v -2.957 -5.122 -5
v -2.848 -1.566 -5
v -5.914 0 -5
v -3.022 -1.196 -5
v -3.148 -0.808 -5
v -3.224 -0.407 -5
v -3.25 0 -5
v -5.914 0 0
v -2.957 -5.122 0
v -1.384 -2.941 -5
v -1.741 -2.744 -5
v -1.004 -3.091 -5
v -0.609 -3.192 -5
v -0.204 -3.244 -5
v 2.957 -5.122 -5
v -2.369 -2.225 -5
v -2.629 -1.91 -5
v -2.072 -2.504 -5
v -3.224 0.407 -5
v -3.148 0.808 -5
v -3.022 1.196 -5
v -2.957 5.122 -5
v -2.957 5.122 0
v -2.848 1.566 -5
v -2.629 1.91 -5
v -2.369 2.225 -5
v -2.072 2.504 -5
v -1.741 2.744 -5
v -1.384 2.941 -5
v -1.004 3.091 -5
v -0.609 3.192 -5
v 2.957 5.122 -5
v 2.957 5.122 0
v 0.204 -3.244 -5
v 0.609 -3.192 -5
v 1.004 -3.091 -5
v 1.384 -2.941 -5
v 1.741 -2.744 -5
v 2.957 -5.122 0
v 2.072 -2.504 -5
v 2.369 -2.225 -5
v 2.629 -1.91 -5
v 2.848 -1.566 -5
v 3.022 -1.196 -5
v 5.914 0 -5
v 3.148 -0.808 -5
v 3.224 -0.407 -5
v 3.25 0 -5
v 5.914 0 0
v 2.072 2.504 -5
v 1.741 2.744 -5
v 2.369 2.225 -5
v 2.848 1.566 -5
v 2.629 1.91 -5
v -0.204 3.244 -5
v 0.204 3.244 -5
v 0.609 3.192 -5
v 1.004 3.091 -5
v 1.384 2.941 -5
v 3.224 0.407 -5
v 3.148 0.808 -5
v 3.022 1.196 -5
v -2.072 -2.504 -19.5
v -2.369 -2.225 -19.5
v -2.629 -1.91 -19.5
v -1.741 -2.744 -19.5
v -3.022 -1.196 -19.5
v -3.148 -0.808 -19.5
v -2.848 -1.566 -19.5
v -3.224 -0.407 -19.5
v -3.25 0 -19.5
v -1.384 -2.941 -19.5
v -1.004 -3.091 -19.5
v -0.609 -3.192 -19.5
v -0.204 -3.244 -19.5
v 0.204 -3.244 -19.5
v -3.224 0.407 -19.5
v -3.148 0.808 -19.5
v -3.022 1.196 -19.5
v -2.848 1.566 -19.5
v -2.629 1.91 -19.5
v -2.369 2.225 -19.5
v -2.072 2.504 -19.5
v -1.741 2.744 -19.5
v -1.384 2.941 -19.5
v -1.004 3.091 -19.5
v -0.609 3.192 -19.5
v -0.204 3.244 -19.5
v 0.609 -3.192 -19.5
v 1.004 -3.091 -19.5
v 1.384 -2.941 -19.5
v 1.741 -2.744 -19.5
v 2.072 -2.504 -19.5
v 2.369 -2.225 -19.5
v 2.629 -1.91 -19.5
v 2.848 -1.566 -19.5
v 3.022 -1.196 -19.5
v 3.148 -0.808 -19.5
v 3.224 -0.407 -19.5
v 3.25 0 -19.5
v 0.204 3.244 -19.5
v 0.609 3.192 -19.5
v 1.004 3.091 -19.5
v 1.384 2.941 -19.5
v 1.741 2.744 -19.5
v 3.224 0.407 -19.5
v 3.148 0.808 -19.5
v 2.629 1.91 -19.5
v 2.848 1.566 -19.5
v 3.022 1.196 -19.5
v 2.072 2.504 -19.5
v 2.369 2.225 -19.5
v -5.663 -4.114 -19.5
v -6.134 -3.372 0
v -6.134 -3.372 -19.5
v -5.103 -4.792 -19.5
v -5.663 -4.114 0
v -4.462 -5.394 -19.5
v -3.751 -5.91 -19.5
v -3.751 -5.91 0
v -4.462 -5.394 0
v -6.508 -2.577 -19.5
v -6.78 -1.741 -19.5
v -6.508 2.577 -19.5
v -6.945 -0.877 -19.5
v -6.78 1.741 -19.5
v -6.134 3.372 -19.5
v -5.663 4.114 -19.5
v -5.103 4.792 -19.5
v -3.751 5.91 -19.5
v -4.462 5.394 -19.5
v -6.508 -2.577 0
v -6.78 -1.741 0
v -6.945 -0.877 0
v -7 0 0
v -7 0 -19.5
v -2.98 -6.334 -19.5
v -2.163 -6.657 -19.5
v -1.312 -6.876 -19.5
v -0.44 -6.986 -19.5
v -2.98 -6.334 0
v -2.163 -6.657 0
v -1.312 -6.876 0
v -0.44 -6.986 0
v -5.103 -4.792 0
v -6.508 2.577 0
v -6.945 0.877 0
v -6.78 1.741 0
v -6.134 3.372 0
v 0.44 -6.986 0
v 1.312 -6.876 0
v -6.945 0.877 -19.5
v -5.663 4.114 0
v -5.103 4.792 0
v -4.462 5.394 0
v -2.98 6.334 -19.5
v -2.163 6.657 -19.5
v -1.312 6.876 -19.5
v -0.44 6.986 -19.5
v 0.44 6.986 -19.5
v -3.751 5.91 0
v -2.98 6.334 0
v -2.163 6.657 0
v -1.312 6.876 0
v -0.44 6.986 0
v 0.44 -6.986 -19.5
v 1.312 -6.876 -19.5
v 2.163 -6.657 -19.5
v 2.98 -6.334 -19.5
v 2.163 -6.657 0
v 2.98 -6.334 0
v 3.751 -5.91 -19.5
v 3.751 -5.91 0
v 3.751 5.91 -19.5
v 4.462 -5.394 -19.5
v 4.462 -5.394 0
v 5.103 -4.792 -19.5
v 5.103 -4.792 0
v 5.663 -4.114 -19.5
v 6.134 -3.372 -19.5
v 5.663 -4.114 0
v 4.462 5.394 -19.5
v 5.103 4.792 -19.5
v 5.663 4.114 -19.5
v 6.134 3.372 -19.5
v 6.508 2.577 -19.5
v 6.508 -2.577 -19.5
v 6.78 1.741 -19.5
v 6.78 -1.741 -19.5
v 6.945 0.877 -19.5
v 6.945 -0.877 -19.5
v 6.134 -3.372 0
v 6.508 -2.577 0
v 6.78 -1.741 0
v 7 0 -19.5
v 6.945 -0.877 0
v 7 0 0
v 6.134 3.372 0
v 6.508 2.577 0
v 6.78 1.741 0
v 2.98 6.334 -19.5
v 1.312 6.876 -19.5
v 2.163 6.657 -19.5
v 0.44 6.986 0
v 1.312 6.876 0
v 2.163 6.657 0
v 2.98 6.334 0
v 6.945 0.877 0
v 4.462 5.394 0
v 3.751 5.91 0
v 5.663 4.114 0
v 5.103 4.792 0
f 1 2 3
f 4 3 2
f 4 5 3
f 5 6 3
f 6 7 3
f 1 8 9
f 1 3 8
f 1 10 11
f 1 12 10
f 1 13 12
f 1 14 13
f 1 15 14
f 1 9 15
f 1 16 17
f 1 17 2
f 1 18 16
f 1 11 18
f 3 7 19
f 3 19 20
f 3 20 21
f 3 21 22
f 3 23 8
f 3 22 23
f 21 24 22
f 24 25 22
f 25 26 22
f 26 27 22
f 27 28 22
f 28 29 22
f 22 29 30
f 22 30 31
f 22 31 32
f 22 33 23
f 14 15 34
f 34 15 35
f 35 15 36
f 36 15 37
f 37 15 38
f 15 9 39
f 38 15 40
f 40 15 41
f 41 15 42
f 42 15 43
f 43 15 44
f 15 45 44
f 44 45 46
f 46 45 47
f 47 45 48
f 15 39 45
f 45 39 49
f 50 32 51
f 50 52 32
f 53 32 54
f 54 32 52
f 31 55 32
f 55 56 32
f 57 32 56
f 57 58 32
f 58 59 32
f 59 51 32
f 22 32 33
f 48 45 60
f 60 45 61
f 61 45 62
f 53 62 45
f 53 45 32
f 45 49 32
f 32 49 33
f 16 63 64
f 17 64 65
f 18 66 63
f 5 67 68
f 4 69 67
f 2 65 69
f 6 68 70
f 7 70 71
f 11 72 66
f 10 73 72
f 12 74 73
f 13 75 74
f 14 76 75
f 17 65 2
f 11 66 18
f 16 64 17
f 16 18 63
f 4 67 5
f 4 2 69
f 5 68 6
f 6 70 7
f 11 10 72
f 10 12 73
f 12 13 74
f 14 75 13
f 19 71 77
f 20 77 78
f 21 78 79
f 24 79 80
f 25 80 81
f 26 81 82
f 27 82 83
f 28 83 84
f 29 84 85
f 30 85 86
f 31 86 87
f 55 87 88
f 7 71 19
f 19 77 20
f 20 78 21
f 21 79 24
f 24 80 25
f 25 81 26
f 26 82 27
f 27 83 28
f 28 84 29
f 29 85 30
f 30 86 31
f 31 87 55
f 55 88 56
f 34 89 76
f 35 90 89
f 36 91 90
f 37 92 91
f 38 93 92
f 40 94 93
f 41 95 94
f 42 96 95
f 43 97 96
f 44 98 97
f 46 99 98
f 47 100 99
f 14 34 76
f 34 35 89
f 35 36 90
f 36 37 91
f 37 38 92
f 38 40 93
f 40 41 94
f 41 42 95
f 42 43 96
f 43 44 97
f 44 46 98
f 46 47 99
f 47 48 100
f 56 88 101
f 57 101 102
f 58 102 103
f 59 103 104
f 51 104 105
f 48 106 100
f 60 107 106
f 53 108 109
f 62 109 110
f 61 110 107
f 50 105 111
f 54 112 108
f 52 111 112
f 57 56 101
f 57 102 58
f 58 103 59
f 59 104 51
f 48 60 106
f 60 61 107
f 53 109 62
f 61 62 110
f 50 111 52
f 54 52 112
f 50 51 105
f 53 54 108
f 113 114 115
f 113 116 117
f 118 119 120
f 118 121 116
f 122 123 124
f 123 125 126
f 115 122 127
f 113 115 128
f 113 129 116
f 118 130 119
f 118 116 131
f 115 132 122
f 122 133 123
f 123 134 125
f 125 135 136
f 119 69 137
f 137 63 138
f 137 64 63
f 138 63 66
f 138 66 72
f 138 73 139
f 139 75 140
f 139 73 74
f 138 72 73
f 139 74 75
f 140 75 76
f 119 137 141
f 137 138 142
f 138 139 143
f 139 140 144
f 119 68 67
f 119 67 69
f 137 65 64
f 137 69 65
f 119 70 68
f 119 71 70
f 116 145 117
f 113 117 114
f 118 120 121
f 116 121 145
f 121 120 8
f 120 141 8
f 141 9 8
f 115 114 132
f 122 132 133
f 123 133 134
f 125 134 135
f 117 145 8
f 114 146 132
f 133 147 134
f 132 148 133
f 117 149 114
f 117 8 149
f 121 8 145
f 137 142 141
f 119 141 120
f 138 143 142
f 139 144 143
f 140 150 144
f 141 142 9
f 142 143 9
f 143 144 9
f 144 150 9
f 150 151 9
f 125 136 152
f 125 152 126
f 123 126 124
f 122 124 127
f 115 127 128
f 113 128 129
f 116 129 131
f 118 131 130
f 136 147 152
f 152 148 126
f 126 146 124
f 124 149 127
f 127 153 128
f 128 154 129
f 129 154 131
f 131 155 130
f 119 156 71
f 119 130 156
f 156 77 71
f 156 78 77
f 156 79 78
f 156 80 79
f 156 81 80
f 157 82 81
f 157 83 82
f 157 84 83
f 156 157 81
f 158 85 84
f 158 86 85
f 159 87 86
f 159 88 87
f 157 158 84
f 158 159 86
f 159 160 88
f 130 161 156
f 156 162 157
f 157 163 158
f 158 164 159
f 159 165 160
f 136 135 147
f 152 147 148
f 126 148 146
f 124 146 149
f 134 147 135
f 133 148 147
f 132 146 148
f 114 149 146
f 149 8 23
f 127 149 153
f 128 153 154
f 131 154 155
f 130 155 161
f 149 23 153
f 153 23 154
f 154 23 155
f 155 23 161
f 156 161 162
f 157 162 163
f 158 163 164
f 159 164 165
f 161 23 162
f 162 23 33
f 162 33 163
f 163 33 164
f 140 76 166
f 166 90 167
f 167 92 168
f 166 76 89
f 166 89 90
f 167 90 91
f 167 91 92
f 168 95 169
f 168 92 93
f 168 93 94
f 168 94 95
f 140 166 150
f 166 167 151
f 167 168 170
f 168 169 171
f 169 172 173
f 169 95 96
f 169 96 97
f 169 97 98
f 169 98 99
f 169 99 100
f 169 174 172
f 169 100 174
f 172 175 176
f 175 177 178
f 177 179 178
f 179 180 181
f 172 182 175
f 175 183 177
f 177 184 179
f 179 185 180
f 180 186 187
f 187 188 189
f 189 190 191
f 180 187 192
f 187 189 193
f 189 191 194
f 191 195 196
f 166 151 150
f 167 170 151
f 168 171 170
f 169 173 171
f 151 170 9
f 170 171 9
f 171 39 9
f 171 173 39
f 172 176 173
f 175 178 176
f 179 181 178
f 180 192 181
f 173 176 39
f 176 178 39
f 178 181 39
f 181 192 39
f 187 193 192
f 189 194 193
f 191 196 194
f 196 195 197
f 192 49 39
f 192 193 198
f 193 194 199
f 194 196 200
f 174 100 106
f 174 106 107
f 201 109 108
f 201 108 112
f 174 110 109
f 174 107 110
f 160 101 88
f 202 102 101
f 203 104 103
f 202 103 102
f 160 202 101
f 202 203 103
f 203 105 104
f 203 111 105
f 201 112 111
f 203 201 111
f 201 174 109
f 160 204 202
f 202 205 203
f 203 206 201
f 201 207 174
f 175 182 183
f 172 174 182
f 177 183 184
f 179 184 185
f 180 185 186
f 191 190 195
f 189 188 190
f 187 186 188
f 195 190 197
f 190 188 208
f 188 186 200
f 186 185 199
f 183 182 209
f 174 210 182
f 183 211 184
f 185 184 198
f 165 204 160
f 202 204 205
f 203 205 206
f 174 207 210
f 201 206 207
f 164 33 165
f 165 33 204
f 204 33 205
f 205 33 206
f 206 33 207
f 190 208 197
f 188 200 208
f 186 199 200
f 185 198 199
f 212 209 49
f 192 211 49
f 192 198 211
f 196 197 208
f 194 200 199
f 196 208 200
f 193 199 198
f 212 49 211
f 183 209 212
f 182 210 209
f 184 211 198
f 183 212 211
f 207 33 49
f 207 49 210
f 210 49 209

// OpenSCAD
$fn = 50;


difference() {
	union() {
		translate(v = [0, 0, -19.5000000000]) {
			cylinder(h = 19.5000000000, r = 7.0000000000);
		}
	}
	union() {
		translate(v = [0, 0, 0]) {
			rotate(a = [0, 0, 0]) {
				difference() {
					union() {
						translate(v = [0, 0, -5]) {
							linear_extrude(height = 5) {
								polygon(points = [[5.9142500000, 0.0000000000], [2.9571250000, 5.1218907443], [-2.9571250000, 5.1218907443], [-5.9142500000, 0.0000000000], [-2.9571250000, -5.1218907443], [2.9571250000, -5.1218907443]]);
							}
						}
					}
					union();
				}
			}
		}
		#translate(v = [0, 0, -100.0000000000]) {
			cylinder(h = 200, r = 3.2500000000);
		}
	}
}
